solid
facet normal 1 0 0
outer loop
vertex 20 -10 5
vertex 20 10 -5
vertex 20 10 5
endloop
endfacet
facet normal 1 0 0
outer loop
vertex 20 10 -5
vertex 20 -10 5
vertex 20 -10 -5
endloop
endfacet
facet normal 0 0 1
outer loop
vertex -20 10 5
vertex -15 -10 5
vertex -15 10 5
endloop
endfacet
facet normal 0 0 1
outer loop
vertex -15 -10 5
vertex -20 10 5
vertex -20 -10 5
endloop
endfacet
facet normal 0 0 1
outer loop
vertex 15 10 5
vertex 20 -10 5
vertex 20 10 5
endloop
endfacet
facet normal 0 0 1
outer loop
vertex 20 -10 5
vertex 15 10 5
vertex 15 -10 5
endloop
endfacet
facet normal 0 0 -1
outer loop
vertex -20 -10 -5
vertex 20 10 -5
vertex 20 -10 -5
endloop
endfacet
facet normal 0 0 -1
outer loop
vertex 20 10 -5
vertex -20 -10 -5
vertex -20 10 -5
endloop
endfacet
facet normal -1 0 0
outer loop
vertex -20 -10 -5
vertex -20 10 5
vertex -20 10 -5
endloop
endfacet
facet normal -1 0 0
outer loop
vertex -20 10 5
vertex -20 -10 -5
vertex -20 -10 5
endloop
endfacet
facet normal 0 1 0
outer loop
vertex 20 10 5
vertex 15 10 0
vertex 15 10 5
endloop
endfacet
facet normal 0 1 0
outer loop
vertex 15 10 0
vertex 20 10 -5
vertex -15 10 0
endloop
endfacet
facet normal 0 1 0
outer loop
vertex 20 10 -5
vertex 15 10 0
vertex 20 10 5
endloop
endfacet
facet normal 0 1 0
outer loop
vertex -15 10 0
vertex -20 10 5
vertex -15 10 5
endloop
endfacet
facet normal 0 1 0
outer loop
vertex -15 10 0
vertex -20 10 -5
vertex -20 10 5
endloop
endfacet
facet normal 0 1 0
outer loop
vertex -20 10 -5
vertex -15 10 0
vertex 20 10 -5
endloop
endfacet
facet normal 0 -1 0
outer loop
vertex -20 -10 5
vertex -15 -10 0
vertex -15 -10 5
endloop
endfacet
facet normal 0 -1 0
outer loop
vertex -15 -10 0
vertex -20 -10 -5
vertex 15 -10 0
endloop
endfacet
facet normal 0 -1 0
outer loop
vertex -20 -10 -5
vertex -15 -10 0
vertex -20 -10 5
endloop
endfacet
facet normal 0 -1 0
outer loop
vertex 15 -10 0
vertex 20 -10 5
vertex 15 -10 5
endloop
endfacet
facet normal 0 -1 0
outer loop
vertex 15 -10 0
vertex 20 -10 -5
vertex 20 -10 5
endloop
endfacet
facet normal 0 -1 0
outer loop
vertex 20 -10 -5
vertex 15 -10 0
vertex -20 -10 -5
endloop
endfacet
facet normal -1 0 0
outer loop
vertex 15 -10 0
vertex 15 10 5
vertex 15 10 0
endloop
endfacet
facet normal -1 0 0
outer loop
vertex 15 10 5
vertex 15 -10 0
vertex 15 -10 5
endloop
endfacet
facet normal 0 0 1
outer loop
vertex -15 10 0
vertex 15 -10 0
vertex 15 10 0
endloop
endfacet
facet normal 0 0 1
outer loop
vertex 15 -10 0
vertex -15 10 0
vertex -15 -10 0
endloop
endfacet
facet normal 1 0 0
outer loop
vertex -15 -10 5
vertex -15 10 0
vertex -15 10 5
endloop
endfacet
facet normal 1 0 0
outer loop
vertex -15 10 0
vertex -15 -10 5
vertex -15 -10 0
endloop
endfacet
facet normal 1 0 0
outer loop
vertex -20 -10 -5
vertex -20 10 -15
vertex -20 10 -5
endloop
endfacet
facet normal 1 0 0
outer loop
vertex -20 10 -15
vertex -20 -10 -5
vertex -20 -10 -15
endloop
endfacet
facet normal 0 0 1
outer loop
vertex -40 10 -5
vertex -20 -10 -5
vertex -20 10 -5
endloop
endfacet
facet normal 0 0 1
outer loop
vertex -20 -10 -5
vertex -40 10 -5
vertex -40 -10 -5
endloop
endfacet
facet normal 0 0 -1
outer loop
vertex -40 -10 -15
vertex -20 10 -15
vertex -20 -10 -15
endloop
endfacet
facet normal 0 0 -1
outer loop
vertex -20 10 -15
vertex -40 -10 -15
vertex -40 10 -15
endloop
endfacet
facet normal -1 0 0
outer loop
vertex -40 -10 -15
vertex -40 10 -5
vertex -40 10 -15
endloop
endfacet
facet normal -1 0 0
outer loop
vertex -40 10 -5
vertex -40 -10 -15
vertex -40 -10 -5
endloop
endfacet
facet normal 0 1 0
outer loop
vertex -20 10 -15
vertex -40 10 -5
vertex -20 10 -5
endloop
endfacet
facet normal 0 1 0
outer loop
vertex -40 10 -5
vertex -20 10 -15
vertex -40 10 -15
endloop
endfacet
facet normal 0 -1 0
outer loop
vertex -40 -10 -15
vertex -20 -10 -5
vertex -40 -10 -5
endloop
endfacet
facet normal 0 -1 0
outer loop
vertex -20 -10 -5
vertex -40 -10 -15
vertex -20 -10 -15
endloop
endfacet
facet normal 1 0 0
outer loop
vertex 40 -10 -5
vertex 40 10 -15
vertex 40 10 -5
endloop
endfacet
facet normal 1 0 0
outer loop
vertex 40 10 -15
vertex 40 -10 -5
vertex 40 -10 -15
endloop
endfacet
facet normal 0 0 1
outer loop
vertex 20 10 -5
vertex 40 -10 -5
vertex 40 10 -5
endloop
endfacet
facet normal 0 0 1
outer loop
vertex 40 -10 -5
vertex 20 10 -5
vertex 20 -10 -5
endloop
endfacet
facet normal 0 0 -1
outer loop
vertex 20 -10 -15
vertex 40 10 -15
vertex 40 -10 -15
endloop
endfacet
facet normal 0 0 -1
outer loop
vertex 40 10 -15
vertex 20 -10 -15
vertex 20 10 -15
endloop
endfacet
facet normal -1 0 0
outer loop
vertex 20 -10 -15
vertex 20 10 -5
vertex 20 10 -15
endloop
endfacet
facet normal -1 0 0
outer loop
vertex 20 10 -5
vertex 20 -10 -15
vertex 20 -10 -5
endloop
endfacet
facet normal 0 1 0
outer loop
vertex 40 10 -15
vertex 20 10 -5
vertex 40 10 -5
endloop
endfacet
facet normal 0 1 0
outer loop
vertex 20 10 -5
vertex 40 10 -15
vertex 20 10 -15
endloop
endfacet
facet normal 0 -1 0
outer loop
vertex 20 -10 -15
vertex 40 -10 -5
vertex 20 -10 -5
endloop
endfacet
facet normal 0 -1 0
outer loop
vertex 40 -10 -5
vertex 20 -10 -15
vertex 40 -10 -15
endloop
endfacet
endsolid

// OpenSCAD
// Define dimensions for the components
module central_block() {
    difference() {
        // Base block
        cube([40, 20, 10], center = true);
        // Cutout for stepped profile (simplified to match original model)
        translate([0, 0, 5])
            cube([30, 20, 10], center = true);
    }
}

module side_block() {
    // Side block dimensions
    cube([20, 20, 10], center = true);
}

// Assemble the model
module flexible_coupling() {
    // Layer 2: Central block
    central_block();

    // Layer 1: Side blocks (lowered to base level and detached from central block)
    translate([-30, 0, -10]) // Position left side block
        side_block();
    translate([30, 0, -10]) // Position right side block
        side_block();
}

// Render the model
flexible_coupling();
